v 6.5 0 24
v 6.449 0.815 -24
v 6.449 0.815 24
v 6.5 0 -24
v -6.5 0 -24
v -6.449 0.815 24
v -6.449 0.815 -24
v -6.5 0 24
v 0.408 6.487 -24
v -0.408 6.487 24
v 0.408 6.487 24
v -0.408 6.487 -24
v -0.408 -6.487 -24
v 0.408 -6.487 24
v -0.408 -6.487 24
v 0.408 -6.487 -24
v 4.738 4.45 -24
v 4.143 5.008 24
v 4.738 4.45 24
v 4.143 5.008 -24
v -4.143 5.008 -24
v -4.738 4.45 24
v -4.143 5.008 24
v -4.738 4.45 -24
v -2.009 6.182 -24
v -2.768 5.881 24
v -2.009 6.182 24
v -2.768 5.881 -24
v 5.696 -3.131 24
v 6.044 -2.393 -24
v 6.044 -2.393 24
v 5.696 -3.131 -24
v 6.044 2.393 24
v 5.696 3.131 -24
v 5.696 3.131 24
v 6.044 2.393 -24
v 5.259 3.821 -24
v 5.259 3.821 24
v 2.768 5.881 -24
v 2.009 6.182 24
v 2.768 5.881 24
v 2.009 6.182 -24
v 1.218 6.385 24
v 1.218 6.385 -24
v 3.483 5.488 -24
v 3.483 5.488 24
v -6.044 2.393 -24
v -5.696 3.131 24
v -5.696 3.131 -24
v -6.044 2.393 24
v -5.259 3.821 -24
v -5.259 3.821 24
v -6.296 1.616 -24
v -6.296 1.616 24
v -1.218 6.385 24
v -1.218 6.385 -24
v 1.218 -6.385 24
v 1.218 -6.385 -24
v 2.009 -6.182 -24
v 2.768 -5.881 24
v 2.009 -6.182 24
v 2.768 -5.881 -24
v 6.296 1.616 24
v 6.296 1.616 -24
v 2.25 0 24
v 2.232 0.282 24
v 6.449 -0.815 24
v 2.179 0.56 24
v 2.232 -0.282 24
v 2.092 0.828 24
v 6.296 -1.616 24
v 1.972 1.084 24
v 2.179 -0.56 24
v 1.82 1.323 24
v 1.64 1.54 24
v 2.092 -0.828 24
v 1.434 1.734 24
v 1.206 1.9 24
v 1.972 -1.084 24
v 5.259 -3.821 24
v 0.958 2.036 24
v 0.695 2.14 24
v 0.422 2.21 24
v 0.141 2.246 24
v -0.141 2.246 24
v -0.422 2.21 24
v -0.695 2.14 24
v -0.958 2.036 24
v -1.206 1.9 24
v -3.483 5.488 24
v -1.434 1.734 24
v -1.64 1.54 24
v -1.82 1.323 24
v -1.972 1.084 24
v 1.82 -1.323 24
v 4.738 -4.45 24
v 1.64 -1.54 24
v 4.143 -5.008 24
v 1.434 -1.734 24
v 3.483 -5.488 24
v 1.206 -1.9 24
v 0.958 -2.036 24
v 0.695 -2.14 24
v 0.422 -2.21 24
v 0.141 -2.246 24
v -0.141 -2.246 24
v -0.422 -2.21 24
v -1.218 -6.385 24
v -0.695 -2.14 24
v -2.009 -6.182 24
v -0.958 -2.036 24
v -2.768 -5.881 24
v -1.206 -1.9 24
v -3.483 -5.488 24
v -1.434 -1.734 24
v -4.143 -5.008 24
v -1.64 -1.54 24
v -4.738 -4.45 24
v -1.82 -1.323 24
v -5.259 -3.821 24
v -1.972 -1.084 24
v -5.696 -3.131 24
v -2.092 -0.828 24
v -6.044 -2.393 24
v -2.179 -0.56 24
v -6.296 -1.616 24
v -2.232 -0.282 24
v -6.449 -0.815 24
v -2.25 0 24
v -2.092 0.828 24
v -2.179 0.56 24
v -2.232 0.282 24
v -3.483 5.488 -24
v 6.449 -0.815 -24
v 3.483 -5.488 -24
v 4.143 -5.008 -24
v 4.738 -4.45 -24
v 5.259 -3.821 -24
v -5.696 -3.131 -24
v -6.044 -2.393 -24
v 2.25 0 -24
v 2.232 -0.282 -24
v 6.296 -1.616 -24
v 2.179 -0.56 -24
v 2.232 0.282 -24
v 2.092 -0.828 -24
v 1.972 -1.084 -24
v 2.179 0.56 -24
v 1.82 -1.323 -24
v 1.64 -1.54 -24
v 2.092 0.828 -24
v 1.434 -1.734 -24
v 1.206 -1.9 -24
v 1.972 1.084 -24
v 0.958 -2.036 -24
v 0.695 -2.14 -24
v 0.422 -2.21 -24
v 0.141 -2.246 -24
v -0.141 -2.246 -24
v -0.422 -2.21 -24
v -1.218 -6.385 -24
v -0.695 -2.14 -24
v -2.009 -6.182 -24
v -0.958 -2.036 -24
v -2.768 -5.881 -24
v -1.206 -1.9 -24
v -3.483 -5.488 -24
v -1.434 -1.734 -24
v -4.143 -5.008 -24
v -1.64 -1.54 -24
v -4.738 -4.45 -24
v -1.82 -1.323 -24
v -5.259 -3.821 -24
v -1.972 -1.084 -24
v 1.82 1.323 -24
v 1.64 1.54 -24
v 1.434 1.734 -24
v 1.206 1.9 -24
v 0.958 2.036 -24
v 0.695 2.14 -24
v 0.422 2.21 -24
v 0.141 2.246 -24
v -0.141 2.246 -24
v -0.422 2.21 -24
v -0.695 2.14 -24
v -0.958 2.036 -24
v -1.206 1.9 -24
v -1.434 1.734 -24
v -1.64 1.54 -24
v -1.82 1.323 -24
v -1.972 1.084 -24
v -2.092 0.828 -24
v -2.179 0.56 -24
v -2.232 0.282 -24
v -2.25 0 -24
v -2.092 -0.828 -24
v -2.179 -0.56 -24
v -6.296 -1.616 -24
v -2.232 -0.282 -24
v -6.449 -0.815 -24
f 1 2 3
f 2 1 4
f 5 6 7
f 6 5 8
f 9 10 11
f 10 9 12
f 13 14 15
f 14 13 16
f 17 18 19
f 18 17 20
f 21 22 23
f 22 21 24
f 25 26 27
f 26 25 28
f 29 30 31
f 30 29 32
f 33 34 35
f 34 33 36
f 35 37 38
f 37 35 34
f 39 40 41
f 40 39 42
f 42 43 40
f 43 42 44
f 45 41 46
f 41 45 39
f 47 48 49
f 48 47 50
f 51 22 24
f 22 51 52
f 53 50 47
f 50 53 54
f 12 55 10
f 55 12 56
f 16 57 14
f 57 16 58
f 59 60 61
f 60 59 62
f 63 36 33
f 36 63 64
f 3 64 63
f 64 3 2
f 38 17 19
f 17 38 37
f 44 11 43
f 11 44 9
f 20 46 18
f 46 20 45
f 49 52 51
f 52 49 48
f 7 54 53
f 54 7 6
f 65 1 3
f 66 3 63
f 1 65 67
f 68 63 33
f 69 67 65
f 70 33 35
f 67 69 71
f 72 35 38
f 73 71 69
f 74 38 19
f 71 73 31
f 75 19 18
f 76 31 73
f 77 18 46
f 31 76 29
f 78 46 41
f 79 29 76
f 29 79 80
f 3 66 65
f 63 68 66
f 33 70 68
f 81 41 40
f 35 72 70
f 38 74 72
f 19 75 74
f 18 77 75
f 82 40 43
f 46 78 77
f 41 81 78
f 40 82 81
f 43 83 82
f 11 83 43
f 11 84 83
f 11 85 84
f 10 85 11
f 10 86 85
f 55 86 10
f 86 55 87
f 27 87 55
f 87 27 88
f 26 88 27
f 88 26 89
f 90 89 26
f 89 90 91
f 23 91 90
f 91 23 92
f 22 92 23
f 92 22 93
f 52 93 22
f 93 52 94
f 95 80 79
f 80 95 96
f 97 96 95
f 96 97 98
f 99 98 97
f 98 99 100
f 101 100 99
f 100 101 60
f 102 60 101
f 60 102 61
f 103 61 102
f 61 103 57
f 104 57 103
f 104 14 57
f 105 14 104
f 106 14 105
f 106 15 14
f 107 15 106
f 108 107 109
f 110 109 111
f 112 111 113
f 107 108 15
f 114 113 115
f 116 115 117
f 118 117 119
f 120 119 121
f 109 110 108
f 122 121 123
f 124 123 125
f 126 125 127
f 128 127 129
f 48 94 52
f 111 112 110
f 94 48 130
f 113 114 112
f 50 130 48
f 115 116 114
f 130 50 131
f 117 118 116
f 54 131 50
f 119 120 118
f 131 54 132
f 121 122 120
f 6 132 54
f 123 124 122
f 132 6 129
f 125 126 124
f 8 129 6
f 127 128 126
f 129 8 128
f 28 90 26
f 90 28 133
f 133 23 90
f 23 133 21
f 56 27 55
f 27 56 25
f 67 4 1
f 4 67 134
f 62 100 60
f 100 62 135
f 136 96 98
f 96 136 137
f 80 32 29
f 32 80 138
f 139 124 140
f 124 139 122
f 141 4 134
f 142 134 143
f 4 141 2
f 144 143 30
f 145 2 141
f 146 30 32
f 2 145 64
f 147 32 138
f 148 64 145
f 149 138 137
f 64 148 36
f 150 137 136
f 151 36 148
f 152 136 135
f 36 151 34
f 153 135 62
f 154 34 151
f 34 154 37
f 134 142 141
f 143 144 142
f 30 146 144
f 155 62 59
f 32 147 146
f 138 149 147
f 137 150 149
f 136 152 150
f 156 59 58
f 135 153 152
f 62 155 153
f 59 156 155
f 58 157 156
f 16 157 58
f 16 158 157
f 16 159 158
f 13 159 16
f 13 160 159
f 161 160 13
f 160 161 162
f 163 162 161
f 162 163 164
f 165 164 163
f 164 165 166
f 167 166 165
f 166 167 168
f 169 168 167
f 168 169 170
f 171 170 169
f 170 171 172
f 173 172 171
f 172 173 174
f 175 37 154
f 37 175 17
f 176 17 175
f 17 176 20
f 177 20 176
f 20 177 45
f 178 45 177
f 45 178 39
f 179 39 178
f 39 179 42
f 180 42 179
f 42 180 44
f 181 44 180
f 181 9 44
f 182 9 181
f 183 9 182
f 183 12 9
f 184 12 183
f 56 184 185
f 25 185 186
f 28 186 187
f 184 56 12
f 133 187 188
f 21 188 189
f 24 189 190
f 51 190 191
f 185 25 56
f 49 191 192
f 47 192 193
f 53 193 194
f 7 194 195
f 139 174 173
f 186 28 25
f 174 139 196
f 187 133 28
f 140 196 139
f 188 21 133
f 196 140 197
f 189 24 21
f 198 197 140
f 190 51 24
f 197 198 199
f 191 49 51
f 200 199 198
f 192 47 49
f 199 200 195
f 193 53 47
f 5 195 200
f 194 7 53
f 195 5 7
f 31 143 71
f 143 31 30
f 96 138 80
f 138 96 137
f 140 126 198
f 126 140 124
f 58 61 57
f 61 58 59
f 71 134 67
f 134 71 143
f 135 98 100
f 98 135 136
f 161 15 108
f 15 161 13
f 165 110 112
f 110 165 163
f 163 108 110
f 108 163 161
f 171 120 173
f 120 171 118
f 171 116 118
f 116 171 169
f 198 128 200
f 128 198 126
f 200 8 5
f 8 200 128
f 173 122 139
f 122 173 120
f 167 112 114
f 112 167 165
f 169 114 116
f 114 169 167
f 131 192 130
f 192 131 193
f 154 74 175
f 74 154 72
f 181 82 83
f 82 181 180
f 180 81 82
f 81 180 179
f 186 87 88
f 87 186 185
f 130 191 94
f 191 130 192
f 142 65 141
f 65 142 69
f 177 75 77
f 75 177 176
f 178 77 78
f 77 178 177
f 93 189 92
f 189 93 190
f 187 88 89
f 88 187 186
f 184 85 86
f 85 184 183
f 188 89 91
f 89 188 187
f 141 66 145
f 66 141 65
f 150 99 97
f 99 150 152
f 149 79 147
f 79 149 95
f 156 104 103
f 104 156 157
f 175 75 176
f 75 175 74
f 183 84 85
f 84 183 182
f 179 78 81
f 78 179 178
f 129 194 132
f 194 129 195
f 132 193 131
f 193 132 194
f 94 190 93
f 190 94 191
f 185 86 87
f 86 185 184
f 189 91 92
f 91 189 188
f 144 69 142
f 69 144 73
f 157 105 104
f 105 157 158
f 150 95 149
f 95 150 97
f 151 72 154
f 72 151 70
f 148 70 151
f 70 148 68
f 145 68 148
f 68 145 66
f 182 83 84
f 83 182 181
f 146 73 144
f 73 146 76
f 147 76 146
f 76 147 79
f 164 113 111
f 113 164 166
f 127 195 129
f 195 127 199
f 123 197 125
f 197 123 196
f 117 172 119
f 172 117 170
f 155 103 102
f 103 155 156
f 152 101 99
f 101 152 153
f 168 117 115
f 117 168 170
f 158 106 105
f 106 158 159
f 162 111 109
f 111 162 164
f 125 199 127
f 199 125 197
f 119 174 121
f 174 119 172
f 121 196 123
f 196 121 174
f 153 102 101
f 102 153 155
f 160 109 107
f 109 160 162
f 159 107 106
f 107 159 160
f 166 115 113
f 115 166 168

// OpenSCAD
$fn = 50;


difference() {
	union() {
		translate(v = [0, 0, -24.0000000000]) {
			cylinder(h = 48, r = 6.5000000000);
		}
	}
	union() {
		translate(v = [0, 0, -100.0000000000]) {
			cylinder(h = 200, r = 2.2500000000);
		}
	}
}
